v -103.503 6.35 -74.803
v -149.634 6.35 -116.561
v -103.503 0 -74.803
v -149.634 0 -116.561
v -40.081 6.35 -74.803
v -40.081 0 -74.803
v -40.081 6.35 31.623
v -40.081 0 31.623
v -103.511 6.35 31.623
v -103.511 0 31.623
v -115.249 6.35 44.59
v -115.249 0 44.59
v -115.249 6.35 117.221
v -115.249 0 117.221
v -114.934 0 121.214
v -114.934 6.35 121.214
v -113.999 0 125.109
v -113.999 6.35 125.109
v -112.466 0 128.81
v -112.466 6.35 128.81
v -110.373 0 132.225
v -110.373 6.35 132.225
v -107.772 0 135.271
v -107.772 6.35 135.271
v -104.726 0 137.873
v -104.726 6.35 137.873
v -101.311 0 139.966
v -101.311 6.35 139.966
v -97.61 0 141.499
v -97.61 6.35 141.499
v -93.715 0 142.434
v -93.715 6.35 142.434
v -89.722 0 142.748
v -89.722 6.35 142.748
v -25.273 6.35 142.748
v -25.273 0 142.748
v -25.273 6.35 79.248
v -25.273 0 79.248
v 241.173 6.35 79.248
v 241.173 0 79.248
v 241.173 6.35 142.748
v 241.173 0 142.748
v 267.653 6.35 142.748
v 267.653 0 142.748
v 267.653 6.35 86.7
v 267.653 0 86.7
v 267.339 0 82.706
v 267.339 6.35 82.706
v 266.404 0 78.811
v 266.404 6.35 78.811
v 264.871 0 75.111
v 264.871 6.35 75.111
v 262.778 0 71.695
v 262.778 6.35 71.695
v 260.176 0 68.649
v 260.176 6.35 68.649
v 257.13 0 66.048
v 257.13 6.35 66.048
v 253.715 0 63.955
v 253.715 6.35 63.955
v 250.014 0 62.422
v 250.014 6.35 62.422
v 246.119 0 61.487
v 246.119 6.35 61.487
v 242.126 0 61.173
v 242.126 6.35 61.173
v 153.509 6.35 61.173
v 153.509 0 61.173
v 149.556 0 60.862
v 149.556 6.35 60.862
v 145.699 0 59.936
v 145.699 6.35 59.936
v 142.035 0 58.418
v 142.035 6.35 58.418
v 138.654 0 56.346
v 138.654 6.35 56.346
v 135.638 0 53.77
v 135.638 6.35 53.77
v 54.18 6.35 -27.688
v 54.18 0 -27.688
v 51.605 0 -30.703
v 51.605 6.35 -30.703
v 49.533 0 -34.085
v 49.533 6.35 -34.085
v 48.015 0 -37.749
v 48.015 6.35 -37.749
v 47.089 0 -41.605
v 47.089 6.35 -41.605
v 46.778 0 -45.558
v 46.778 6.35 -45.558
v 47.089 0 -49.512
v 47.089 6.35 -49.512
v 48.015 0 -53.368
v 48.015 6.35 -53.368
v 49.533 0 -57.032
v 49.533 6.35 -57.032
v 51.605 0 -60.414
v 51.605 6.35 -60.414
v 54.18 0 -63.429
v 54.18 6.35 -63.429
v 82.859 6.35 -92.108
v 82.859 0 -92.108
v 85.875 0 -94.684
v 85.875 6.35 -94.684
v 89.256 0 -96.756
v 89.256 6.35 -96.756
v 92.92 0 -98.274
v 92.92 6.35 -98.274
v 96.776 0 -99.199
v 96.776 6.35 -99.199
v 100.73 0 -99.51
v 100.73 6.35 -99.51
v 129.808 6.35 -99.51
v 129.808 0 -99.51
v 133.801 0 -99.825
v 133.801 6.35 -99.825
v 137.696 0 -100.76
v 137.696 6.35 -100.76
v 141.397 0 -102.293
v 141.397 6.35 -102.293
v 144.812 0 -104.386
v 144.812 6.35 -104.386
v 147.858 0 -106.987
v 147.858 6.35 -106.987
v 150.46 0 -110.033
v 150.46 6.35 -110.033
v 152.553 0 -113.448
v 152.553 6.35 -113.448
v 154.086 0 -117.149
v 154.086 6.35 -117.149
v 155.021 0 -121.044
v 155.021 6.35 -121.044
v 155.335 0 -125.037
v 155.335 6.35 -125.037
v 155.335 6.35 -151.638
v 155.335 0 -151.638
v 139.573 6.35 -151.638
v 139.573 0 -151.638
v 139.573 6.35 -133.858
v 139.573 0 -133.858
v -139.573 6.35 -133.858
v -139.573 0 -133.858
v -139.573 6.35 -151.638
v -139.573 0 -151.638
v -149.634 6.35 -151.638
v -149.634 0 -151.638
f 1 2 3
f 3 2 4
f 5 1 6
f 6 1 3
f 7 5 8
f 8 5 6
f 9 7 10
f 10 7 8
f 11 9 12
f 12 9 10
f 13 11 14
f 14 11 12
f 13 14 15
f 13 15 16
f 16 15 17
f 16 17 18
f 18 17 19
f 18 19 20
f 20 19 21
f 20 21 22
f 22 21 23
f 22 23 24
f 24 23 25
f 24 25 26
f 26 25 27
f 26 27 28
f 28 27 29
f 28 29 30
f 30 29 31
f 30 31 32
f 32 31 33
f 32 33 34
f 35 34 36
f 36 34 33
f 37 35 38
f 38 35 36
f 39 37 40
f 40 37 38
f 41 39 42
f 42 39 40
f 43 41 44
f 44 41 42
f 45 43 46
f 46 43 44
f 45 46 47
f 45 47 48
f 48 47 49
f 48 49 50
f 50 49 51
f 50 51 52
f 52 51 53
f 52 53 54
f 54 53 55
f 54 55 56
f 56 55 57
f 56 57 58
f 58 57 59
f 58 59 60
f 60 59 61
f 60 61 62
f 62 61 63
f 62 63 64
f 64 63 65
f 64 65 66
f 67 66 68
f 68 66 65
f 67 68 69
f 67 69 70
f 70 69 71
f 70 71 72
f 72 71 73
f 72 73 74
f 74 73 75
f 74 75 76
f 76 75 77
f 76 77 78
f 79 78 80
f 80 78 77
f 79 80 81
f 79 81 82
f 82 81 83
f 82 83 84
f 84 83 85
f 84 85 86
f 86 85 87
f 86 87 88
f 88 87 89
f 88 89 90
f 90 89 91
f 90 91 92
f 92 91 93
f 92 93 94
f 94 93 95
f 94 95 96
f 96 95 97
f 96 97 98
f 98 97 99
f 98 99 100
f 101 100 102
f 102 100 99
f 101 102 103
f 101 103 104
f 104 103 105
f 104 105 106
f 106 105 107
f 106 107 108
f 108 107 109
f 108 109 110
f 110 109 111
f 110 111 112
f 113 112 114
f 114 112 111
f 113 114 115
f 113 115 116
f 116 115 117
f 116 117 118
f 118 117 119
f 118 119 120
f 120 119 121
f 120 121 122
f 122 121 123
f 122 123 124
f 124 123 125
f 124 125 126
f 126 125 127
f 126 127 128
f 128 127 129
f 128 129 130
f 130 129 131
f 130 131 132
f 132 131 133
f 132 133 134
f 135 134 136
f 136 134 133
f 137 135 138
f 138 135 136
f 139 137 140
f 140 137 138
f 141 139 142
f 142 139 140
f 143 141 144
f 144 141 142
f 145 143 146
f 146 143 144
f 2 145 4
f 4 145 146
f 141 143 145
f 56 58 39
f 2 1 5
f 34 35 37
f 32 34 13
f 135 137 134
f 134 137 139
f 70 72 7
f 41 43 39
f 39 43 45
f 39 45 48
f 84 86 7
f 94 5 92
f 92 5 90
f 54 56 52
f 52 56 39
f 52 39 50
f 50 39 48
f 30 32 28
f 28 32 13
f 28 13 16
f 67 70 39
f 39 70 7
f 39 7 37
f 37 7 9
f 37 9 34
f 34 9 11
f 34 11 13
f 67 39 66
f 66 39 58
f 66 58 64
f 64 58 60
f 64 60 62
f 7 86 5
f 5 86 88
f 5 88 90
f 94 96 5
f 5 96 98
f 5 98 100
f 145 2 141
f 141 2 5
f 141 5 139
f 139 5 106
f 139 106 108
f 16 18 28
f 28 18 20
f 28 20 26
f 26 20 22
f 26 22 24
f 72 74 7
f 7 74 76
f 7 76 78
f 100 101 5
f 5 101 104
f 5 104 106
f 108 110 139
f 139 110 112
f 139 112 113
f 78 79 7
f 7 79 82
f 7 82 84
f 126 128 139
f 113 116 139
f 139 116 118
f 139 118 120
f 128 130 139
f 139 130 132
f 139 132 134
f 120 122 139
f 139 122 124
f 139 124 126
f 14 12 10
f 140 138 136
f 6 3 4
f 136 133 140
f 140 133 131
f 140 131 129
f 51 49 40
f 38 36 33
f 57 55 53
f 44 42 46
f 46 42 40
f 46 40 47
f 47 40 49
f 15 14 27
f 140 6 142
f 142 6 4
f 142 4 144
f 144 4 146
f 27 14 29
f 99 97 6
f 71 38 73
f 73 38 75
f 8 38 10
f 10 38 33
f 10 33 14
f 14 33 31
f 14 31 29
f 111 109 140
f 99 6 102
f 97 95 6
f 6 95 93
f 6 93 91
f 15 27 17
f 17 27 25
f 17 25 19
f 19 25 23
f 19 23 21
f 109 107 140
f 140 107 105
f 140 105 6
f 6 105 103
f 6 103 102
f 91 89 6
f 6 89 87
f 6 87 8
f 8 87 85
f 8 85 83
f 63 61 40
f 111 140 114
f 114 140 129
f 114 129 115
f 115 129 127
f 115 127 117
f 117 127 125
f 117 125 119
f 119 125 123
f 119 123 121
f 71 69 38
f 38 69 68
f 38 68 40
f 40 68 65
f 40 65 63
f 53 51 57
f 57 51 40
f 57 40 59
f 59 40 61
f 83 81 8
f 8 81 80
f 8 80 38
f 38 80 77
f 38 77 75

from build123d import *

# Parameters (mm, degrees)
BOSS_EXTRUDE1_DEPTH = 6.35


with BuildPart() as part:
    # Sketch2 → Boss-Extrude1 (new body)
    with BuildSketch(Plane(origin=(0, 0, 0), x_dir=(1, 0, 0), z_dir=(0, 1, 0))):
        with BuildLine():
            Line((-25.273, -79.248), (-25.273, -142.748))
            Line((-25.273, -142.748), (-89.721716587, -142.748))
            ThreePointArc((-89.721716587, -142.748), (-107.772031391, -135.271314803), (-115.248716587, -117.221))
            Line((-115.248716587, -117.221), (-115.248716587, -44.590319773))
            Line((-115.248716587, -44.590319773), (-103.51054261, -31.623))
            Line((-103.51054261, -31.623), (-40.0812, -31.623))
            Line((-40.0812, -31.623), (-40.0812, 0))
            Line((-40.0812, 0), (-40.0812, 74.803))
            Line((-40.0812, 74.803), (-103.503143824, 74.803))
            Line((-103.503143824, 74.803), (-149.633756095, 116.560985613))
            Line((-149.633756095, 116.560985613), (-149.633756095, 151.638))
            Line((-149.633756095, 151.638), (-139.573, 151.638))
            Line((-139.573, 151.638), (-139.573, 133.858))
            Line((-139.573, 133.858), (0, 133.858))
            Line((0, 133.858), (139.573, 133.858))
            Line((139.573, 133.858), (139.573, 151.638))
            Line((139.573, 151.638), (155.334898669, 151.638))
            Line((155.334898669, 151.638), (155.334898669, 125.037492411))
            ThreePointArc((155.334898669, 125.037492411), (147.858213472, 106.987177608), (129.807898669, 99.510492411))
            Line((129.807898669, 99.510492411), (100.730063349, 99.510492411))
            ThreePointArc((100.730063349, 99.510492411), (91.058504963, 97.586699836), (82.859353668, 92.108202092))
            Line((82.859353668, 92.108202092), (54.18030231, 63.429150734))
            ThreePointArc((54.18030231, 63.429150734), (46.778011991, 45.558441053), (54.18030231, 27.687731372))
            Line((54.18030231, 27.687731372), (135.638427829, -53.770394147))
            ThreePointArc((135.638427829, -53.770394147), (143.837579124, -59.248891891), (153.50913751, -61.172684466))
            Line((153.50913751, -61.172684466), (242.125928412, -61.172684466))
            ThreePointArc((242.125928412, -61.172684466), (260.176243215, -68.649369662), (267.652928412, -86.699684466))
            Line((267.652928412, -86.699684466), (267.652928412, -142.748))
            Line((267.652928412, -142.748), (241.173, -142.748))
            Line((241.173, -142.748), (241.173, -79.248))
            Line((241.173, -79.248), (0, -79.248))
            Line((0, -79.248), (-25.273, -79.248))
        make_face()
    extrude(amount=BOSS_EXTRUDE1_DEPTH)


solid = part.part
